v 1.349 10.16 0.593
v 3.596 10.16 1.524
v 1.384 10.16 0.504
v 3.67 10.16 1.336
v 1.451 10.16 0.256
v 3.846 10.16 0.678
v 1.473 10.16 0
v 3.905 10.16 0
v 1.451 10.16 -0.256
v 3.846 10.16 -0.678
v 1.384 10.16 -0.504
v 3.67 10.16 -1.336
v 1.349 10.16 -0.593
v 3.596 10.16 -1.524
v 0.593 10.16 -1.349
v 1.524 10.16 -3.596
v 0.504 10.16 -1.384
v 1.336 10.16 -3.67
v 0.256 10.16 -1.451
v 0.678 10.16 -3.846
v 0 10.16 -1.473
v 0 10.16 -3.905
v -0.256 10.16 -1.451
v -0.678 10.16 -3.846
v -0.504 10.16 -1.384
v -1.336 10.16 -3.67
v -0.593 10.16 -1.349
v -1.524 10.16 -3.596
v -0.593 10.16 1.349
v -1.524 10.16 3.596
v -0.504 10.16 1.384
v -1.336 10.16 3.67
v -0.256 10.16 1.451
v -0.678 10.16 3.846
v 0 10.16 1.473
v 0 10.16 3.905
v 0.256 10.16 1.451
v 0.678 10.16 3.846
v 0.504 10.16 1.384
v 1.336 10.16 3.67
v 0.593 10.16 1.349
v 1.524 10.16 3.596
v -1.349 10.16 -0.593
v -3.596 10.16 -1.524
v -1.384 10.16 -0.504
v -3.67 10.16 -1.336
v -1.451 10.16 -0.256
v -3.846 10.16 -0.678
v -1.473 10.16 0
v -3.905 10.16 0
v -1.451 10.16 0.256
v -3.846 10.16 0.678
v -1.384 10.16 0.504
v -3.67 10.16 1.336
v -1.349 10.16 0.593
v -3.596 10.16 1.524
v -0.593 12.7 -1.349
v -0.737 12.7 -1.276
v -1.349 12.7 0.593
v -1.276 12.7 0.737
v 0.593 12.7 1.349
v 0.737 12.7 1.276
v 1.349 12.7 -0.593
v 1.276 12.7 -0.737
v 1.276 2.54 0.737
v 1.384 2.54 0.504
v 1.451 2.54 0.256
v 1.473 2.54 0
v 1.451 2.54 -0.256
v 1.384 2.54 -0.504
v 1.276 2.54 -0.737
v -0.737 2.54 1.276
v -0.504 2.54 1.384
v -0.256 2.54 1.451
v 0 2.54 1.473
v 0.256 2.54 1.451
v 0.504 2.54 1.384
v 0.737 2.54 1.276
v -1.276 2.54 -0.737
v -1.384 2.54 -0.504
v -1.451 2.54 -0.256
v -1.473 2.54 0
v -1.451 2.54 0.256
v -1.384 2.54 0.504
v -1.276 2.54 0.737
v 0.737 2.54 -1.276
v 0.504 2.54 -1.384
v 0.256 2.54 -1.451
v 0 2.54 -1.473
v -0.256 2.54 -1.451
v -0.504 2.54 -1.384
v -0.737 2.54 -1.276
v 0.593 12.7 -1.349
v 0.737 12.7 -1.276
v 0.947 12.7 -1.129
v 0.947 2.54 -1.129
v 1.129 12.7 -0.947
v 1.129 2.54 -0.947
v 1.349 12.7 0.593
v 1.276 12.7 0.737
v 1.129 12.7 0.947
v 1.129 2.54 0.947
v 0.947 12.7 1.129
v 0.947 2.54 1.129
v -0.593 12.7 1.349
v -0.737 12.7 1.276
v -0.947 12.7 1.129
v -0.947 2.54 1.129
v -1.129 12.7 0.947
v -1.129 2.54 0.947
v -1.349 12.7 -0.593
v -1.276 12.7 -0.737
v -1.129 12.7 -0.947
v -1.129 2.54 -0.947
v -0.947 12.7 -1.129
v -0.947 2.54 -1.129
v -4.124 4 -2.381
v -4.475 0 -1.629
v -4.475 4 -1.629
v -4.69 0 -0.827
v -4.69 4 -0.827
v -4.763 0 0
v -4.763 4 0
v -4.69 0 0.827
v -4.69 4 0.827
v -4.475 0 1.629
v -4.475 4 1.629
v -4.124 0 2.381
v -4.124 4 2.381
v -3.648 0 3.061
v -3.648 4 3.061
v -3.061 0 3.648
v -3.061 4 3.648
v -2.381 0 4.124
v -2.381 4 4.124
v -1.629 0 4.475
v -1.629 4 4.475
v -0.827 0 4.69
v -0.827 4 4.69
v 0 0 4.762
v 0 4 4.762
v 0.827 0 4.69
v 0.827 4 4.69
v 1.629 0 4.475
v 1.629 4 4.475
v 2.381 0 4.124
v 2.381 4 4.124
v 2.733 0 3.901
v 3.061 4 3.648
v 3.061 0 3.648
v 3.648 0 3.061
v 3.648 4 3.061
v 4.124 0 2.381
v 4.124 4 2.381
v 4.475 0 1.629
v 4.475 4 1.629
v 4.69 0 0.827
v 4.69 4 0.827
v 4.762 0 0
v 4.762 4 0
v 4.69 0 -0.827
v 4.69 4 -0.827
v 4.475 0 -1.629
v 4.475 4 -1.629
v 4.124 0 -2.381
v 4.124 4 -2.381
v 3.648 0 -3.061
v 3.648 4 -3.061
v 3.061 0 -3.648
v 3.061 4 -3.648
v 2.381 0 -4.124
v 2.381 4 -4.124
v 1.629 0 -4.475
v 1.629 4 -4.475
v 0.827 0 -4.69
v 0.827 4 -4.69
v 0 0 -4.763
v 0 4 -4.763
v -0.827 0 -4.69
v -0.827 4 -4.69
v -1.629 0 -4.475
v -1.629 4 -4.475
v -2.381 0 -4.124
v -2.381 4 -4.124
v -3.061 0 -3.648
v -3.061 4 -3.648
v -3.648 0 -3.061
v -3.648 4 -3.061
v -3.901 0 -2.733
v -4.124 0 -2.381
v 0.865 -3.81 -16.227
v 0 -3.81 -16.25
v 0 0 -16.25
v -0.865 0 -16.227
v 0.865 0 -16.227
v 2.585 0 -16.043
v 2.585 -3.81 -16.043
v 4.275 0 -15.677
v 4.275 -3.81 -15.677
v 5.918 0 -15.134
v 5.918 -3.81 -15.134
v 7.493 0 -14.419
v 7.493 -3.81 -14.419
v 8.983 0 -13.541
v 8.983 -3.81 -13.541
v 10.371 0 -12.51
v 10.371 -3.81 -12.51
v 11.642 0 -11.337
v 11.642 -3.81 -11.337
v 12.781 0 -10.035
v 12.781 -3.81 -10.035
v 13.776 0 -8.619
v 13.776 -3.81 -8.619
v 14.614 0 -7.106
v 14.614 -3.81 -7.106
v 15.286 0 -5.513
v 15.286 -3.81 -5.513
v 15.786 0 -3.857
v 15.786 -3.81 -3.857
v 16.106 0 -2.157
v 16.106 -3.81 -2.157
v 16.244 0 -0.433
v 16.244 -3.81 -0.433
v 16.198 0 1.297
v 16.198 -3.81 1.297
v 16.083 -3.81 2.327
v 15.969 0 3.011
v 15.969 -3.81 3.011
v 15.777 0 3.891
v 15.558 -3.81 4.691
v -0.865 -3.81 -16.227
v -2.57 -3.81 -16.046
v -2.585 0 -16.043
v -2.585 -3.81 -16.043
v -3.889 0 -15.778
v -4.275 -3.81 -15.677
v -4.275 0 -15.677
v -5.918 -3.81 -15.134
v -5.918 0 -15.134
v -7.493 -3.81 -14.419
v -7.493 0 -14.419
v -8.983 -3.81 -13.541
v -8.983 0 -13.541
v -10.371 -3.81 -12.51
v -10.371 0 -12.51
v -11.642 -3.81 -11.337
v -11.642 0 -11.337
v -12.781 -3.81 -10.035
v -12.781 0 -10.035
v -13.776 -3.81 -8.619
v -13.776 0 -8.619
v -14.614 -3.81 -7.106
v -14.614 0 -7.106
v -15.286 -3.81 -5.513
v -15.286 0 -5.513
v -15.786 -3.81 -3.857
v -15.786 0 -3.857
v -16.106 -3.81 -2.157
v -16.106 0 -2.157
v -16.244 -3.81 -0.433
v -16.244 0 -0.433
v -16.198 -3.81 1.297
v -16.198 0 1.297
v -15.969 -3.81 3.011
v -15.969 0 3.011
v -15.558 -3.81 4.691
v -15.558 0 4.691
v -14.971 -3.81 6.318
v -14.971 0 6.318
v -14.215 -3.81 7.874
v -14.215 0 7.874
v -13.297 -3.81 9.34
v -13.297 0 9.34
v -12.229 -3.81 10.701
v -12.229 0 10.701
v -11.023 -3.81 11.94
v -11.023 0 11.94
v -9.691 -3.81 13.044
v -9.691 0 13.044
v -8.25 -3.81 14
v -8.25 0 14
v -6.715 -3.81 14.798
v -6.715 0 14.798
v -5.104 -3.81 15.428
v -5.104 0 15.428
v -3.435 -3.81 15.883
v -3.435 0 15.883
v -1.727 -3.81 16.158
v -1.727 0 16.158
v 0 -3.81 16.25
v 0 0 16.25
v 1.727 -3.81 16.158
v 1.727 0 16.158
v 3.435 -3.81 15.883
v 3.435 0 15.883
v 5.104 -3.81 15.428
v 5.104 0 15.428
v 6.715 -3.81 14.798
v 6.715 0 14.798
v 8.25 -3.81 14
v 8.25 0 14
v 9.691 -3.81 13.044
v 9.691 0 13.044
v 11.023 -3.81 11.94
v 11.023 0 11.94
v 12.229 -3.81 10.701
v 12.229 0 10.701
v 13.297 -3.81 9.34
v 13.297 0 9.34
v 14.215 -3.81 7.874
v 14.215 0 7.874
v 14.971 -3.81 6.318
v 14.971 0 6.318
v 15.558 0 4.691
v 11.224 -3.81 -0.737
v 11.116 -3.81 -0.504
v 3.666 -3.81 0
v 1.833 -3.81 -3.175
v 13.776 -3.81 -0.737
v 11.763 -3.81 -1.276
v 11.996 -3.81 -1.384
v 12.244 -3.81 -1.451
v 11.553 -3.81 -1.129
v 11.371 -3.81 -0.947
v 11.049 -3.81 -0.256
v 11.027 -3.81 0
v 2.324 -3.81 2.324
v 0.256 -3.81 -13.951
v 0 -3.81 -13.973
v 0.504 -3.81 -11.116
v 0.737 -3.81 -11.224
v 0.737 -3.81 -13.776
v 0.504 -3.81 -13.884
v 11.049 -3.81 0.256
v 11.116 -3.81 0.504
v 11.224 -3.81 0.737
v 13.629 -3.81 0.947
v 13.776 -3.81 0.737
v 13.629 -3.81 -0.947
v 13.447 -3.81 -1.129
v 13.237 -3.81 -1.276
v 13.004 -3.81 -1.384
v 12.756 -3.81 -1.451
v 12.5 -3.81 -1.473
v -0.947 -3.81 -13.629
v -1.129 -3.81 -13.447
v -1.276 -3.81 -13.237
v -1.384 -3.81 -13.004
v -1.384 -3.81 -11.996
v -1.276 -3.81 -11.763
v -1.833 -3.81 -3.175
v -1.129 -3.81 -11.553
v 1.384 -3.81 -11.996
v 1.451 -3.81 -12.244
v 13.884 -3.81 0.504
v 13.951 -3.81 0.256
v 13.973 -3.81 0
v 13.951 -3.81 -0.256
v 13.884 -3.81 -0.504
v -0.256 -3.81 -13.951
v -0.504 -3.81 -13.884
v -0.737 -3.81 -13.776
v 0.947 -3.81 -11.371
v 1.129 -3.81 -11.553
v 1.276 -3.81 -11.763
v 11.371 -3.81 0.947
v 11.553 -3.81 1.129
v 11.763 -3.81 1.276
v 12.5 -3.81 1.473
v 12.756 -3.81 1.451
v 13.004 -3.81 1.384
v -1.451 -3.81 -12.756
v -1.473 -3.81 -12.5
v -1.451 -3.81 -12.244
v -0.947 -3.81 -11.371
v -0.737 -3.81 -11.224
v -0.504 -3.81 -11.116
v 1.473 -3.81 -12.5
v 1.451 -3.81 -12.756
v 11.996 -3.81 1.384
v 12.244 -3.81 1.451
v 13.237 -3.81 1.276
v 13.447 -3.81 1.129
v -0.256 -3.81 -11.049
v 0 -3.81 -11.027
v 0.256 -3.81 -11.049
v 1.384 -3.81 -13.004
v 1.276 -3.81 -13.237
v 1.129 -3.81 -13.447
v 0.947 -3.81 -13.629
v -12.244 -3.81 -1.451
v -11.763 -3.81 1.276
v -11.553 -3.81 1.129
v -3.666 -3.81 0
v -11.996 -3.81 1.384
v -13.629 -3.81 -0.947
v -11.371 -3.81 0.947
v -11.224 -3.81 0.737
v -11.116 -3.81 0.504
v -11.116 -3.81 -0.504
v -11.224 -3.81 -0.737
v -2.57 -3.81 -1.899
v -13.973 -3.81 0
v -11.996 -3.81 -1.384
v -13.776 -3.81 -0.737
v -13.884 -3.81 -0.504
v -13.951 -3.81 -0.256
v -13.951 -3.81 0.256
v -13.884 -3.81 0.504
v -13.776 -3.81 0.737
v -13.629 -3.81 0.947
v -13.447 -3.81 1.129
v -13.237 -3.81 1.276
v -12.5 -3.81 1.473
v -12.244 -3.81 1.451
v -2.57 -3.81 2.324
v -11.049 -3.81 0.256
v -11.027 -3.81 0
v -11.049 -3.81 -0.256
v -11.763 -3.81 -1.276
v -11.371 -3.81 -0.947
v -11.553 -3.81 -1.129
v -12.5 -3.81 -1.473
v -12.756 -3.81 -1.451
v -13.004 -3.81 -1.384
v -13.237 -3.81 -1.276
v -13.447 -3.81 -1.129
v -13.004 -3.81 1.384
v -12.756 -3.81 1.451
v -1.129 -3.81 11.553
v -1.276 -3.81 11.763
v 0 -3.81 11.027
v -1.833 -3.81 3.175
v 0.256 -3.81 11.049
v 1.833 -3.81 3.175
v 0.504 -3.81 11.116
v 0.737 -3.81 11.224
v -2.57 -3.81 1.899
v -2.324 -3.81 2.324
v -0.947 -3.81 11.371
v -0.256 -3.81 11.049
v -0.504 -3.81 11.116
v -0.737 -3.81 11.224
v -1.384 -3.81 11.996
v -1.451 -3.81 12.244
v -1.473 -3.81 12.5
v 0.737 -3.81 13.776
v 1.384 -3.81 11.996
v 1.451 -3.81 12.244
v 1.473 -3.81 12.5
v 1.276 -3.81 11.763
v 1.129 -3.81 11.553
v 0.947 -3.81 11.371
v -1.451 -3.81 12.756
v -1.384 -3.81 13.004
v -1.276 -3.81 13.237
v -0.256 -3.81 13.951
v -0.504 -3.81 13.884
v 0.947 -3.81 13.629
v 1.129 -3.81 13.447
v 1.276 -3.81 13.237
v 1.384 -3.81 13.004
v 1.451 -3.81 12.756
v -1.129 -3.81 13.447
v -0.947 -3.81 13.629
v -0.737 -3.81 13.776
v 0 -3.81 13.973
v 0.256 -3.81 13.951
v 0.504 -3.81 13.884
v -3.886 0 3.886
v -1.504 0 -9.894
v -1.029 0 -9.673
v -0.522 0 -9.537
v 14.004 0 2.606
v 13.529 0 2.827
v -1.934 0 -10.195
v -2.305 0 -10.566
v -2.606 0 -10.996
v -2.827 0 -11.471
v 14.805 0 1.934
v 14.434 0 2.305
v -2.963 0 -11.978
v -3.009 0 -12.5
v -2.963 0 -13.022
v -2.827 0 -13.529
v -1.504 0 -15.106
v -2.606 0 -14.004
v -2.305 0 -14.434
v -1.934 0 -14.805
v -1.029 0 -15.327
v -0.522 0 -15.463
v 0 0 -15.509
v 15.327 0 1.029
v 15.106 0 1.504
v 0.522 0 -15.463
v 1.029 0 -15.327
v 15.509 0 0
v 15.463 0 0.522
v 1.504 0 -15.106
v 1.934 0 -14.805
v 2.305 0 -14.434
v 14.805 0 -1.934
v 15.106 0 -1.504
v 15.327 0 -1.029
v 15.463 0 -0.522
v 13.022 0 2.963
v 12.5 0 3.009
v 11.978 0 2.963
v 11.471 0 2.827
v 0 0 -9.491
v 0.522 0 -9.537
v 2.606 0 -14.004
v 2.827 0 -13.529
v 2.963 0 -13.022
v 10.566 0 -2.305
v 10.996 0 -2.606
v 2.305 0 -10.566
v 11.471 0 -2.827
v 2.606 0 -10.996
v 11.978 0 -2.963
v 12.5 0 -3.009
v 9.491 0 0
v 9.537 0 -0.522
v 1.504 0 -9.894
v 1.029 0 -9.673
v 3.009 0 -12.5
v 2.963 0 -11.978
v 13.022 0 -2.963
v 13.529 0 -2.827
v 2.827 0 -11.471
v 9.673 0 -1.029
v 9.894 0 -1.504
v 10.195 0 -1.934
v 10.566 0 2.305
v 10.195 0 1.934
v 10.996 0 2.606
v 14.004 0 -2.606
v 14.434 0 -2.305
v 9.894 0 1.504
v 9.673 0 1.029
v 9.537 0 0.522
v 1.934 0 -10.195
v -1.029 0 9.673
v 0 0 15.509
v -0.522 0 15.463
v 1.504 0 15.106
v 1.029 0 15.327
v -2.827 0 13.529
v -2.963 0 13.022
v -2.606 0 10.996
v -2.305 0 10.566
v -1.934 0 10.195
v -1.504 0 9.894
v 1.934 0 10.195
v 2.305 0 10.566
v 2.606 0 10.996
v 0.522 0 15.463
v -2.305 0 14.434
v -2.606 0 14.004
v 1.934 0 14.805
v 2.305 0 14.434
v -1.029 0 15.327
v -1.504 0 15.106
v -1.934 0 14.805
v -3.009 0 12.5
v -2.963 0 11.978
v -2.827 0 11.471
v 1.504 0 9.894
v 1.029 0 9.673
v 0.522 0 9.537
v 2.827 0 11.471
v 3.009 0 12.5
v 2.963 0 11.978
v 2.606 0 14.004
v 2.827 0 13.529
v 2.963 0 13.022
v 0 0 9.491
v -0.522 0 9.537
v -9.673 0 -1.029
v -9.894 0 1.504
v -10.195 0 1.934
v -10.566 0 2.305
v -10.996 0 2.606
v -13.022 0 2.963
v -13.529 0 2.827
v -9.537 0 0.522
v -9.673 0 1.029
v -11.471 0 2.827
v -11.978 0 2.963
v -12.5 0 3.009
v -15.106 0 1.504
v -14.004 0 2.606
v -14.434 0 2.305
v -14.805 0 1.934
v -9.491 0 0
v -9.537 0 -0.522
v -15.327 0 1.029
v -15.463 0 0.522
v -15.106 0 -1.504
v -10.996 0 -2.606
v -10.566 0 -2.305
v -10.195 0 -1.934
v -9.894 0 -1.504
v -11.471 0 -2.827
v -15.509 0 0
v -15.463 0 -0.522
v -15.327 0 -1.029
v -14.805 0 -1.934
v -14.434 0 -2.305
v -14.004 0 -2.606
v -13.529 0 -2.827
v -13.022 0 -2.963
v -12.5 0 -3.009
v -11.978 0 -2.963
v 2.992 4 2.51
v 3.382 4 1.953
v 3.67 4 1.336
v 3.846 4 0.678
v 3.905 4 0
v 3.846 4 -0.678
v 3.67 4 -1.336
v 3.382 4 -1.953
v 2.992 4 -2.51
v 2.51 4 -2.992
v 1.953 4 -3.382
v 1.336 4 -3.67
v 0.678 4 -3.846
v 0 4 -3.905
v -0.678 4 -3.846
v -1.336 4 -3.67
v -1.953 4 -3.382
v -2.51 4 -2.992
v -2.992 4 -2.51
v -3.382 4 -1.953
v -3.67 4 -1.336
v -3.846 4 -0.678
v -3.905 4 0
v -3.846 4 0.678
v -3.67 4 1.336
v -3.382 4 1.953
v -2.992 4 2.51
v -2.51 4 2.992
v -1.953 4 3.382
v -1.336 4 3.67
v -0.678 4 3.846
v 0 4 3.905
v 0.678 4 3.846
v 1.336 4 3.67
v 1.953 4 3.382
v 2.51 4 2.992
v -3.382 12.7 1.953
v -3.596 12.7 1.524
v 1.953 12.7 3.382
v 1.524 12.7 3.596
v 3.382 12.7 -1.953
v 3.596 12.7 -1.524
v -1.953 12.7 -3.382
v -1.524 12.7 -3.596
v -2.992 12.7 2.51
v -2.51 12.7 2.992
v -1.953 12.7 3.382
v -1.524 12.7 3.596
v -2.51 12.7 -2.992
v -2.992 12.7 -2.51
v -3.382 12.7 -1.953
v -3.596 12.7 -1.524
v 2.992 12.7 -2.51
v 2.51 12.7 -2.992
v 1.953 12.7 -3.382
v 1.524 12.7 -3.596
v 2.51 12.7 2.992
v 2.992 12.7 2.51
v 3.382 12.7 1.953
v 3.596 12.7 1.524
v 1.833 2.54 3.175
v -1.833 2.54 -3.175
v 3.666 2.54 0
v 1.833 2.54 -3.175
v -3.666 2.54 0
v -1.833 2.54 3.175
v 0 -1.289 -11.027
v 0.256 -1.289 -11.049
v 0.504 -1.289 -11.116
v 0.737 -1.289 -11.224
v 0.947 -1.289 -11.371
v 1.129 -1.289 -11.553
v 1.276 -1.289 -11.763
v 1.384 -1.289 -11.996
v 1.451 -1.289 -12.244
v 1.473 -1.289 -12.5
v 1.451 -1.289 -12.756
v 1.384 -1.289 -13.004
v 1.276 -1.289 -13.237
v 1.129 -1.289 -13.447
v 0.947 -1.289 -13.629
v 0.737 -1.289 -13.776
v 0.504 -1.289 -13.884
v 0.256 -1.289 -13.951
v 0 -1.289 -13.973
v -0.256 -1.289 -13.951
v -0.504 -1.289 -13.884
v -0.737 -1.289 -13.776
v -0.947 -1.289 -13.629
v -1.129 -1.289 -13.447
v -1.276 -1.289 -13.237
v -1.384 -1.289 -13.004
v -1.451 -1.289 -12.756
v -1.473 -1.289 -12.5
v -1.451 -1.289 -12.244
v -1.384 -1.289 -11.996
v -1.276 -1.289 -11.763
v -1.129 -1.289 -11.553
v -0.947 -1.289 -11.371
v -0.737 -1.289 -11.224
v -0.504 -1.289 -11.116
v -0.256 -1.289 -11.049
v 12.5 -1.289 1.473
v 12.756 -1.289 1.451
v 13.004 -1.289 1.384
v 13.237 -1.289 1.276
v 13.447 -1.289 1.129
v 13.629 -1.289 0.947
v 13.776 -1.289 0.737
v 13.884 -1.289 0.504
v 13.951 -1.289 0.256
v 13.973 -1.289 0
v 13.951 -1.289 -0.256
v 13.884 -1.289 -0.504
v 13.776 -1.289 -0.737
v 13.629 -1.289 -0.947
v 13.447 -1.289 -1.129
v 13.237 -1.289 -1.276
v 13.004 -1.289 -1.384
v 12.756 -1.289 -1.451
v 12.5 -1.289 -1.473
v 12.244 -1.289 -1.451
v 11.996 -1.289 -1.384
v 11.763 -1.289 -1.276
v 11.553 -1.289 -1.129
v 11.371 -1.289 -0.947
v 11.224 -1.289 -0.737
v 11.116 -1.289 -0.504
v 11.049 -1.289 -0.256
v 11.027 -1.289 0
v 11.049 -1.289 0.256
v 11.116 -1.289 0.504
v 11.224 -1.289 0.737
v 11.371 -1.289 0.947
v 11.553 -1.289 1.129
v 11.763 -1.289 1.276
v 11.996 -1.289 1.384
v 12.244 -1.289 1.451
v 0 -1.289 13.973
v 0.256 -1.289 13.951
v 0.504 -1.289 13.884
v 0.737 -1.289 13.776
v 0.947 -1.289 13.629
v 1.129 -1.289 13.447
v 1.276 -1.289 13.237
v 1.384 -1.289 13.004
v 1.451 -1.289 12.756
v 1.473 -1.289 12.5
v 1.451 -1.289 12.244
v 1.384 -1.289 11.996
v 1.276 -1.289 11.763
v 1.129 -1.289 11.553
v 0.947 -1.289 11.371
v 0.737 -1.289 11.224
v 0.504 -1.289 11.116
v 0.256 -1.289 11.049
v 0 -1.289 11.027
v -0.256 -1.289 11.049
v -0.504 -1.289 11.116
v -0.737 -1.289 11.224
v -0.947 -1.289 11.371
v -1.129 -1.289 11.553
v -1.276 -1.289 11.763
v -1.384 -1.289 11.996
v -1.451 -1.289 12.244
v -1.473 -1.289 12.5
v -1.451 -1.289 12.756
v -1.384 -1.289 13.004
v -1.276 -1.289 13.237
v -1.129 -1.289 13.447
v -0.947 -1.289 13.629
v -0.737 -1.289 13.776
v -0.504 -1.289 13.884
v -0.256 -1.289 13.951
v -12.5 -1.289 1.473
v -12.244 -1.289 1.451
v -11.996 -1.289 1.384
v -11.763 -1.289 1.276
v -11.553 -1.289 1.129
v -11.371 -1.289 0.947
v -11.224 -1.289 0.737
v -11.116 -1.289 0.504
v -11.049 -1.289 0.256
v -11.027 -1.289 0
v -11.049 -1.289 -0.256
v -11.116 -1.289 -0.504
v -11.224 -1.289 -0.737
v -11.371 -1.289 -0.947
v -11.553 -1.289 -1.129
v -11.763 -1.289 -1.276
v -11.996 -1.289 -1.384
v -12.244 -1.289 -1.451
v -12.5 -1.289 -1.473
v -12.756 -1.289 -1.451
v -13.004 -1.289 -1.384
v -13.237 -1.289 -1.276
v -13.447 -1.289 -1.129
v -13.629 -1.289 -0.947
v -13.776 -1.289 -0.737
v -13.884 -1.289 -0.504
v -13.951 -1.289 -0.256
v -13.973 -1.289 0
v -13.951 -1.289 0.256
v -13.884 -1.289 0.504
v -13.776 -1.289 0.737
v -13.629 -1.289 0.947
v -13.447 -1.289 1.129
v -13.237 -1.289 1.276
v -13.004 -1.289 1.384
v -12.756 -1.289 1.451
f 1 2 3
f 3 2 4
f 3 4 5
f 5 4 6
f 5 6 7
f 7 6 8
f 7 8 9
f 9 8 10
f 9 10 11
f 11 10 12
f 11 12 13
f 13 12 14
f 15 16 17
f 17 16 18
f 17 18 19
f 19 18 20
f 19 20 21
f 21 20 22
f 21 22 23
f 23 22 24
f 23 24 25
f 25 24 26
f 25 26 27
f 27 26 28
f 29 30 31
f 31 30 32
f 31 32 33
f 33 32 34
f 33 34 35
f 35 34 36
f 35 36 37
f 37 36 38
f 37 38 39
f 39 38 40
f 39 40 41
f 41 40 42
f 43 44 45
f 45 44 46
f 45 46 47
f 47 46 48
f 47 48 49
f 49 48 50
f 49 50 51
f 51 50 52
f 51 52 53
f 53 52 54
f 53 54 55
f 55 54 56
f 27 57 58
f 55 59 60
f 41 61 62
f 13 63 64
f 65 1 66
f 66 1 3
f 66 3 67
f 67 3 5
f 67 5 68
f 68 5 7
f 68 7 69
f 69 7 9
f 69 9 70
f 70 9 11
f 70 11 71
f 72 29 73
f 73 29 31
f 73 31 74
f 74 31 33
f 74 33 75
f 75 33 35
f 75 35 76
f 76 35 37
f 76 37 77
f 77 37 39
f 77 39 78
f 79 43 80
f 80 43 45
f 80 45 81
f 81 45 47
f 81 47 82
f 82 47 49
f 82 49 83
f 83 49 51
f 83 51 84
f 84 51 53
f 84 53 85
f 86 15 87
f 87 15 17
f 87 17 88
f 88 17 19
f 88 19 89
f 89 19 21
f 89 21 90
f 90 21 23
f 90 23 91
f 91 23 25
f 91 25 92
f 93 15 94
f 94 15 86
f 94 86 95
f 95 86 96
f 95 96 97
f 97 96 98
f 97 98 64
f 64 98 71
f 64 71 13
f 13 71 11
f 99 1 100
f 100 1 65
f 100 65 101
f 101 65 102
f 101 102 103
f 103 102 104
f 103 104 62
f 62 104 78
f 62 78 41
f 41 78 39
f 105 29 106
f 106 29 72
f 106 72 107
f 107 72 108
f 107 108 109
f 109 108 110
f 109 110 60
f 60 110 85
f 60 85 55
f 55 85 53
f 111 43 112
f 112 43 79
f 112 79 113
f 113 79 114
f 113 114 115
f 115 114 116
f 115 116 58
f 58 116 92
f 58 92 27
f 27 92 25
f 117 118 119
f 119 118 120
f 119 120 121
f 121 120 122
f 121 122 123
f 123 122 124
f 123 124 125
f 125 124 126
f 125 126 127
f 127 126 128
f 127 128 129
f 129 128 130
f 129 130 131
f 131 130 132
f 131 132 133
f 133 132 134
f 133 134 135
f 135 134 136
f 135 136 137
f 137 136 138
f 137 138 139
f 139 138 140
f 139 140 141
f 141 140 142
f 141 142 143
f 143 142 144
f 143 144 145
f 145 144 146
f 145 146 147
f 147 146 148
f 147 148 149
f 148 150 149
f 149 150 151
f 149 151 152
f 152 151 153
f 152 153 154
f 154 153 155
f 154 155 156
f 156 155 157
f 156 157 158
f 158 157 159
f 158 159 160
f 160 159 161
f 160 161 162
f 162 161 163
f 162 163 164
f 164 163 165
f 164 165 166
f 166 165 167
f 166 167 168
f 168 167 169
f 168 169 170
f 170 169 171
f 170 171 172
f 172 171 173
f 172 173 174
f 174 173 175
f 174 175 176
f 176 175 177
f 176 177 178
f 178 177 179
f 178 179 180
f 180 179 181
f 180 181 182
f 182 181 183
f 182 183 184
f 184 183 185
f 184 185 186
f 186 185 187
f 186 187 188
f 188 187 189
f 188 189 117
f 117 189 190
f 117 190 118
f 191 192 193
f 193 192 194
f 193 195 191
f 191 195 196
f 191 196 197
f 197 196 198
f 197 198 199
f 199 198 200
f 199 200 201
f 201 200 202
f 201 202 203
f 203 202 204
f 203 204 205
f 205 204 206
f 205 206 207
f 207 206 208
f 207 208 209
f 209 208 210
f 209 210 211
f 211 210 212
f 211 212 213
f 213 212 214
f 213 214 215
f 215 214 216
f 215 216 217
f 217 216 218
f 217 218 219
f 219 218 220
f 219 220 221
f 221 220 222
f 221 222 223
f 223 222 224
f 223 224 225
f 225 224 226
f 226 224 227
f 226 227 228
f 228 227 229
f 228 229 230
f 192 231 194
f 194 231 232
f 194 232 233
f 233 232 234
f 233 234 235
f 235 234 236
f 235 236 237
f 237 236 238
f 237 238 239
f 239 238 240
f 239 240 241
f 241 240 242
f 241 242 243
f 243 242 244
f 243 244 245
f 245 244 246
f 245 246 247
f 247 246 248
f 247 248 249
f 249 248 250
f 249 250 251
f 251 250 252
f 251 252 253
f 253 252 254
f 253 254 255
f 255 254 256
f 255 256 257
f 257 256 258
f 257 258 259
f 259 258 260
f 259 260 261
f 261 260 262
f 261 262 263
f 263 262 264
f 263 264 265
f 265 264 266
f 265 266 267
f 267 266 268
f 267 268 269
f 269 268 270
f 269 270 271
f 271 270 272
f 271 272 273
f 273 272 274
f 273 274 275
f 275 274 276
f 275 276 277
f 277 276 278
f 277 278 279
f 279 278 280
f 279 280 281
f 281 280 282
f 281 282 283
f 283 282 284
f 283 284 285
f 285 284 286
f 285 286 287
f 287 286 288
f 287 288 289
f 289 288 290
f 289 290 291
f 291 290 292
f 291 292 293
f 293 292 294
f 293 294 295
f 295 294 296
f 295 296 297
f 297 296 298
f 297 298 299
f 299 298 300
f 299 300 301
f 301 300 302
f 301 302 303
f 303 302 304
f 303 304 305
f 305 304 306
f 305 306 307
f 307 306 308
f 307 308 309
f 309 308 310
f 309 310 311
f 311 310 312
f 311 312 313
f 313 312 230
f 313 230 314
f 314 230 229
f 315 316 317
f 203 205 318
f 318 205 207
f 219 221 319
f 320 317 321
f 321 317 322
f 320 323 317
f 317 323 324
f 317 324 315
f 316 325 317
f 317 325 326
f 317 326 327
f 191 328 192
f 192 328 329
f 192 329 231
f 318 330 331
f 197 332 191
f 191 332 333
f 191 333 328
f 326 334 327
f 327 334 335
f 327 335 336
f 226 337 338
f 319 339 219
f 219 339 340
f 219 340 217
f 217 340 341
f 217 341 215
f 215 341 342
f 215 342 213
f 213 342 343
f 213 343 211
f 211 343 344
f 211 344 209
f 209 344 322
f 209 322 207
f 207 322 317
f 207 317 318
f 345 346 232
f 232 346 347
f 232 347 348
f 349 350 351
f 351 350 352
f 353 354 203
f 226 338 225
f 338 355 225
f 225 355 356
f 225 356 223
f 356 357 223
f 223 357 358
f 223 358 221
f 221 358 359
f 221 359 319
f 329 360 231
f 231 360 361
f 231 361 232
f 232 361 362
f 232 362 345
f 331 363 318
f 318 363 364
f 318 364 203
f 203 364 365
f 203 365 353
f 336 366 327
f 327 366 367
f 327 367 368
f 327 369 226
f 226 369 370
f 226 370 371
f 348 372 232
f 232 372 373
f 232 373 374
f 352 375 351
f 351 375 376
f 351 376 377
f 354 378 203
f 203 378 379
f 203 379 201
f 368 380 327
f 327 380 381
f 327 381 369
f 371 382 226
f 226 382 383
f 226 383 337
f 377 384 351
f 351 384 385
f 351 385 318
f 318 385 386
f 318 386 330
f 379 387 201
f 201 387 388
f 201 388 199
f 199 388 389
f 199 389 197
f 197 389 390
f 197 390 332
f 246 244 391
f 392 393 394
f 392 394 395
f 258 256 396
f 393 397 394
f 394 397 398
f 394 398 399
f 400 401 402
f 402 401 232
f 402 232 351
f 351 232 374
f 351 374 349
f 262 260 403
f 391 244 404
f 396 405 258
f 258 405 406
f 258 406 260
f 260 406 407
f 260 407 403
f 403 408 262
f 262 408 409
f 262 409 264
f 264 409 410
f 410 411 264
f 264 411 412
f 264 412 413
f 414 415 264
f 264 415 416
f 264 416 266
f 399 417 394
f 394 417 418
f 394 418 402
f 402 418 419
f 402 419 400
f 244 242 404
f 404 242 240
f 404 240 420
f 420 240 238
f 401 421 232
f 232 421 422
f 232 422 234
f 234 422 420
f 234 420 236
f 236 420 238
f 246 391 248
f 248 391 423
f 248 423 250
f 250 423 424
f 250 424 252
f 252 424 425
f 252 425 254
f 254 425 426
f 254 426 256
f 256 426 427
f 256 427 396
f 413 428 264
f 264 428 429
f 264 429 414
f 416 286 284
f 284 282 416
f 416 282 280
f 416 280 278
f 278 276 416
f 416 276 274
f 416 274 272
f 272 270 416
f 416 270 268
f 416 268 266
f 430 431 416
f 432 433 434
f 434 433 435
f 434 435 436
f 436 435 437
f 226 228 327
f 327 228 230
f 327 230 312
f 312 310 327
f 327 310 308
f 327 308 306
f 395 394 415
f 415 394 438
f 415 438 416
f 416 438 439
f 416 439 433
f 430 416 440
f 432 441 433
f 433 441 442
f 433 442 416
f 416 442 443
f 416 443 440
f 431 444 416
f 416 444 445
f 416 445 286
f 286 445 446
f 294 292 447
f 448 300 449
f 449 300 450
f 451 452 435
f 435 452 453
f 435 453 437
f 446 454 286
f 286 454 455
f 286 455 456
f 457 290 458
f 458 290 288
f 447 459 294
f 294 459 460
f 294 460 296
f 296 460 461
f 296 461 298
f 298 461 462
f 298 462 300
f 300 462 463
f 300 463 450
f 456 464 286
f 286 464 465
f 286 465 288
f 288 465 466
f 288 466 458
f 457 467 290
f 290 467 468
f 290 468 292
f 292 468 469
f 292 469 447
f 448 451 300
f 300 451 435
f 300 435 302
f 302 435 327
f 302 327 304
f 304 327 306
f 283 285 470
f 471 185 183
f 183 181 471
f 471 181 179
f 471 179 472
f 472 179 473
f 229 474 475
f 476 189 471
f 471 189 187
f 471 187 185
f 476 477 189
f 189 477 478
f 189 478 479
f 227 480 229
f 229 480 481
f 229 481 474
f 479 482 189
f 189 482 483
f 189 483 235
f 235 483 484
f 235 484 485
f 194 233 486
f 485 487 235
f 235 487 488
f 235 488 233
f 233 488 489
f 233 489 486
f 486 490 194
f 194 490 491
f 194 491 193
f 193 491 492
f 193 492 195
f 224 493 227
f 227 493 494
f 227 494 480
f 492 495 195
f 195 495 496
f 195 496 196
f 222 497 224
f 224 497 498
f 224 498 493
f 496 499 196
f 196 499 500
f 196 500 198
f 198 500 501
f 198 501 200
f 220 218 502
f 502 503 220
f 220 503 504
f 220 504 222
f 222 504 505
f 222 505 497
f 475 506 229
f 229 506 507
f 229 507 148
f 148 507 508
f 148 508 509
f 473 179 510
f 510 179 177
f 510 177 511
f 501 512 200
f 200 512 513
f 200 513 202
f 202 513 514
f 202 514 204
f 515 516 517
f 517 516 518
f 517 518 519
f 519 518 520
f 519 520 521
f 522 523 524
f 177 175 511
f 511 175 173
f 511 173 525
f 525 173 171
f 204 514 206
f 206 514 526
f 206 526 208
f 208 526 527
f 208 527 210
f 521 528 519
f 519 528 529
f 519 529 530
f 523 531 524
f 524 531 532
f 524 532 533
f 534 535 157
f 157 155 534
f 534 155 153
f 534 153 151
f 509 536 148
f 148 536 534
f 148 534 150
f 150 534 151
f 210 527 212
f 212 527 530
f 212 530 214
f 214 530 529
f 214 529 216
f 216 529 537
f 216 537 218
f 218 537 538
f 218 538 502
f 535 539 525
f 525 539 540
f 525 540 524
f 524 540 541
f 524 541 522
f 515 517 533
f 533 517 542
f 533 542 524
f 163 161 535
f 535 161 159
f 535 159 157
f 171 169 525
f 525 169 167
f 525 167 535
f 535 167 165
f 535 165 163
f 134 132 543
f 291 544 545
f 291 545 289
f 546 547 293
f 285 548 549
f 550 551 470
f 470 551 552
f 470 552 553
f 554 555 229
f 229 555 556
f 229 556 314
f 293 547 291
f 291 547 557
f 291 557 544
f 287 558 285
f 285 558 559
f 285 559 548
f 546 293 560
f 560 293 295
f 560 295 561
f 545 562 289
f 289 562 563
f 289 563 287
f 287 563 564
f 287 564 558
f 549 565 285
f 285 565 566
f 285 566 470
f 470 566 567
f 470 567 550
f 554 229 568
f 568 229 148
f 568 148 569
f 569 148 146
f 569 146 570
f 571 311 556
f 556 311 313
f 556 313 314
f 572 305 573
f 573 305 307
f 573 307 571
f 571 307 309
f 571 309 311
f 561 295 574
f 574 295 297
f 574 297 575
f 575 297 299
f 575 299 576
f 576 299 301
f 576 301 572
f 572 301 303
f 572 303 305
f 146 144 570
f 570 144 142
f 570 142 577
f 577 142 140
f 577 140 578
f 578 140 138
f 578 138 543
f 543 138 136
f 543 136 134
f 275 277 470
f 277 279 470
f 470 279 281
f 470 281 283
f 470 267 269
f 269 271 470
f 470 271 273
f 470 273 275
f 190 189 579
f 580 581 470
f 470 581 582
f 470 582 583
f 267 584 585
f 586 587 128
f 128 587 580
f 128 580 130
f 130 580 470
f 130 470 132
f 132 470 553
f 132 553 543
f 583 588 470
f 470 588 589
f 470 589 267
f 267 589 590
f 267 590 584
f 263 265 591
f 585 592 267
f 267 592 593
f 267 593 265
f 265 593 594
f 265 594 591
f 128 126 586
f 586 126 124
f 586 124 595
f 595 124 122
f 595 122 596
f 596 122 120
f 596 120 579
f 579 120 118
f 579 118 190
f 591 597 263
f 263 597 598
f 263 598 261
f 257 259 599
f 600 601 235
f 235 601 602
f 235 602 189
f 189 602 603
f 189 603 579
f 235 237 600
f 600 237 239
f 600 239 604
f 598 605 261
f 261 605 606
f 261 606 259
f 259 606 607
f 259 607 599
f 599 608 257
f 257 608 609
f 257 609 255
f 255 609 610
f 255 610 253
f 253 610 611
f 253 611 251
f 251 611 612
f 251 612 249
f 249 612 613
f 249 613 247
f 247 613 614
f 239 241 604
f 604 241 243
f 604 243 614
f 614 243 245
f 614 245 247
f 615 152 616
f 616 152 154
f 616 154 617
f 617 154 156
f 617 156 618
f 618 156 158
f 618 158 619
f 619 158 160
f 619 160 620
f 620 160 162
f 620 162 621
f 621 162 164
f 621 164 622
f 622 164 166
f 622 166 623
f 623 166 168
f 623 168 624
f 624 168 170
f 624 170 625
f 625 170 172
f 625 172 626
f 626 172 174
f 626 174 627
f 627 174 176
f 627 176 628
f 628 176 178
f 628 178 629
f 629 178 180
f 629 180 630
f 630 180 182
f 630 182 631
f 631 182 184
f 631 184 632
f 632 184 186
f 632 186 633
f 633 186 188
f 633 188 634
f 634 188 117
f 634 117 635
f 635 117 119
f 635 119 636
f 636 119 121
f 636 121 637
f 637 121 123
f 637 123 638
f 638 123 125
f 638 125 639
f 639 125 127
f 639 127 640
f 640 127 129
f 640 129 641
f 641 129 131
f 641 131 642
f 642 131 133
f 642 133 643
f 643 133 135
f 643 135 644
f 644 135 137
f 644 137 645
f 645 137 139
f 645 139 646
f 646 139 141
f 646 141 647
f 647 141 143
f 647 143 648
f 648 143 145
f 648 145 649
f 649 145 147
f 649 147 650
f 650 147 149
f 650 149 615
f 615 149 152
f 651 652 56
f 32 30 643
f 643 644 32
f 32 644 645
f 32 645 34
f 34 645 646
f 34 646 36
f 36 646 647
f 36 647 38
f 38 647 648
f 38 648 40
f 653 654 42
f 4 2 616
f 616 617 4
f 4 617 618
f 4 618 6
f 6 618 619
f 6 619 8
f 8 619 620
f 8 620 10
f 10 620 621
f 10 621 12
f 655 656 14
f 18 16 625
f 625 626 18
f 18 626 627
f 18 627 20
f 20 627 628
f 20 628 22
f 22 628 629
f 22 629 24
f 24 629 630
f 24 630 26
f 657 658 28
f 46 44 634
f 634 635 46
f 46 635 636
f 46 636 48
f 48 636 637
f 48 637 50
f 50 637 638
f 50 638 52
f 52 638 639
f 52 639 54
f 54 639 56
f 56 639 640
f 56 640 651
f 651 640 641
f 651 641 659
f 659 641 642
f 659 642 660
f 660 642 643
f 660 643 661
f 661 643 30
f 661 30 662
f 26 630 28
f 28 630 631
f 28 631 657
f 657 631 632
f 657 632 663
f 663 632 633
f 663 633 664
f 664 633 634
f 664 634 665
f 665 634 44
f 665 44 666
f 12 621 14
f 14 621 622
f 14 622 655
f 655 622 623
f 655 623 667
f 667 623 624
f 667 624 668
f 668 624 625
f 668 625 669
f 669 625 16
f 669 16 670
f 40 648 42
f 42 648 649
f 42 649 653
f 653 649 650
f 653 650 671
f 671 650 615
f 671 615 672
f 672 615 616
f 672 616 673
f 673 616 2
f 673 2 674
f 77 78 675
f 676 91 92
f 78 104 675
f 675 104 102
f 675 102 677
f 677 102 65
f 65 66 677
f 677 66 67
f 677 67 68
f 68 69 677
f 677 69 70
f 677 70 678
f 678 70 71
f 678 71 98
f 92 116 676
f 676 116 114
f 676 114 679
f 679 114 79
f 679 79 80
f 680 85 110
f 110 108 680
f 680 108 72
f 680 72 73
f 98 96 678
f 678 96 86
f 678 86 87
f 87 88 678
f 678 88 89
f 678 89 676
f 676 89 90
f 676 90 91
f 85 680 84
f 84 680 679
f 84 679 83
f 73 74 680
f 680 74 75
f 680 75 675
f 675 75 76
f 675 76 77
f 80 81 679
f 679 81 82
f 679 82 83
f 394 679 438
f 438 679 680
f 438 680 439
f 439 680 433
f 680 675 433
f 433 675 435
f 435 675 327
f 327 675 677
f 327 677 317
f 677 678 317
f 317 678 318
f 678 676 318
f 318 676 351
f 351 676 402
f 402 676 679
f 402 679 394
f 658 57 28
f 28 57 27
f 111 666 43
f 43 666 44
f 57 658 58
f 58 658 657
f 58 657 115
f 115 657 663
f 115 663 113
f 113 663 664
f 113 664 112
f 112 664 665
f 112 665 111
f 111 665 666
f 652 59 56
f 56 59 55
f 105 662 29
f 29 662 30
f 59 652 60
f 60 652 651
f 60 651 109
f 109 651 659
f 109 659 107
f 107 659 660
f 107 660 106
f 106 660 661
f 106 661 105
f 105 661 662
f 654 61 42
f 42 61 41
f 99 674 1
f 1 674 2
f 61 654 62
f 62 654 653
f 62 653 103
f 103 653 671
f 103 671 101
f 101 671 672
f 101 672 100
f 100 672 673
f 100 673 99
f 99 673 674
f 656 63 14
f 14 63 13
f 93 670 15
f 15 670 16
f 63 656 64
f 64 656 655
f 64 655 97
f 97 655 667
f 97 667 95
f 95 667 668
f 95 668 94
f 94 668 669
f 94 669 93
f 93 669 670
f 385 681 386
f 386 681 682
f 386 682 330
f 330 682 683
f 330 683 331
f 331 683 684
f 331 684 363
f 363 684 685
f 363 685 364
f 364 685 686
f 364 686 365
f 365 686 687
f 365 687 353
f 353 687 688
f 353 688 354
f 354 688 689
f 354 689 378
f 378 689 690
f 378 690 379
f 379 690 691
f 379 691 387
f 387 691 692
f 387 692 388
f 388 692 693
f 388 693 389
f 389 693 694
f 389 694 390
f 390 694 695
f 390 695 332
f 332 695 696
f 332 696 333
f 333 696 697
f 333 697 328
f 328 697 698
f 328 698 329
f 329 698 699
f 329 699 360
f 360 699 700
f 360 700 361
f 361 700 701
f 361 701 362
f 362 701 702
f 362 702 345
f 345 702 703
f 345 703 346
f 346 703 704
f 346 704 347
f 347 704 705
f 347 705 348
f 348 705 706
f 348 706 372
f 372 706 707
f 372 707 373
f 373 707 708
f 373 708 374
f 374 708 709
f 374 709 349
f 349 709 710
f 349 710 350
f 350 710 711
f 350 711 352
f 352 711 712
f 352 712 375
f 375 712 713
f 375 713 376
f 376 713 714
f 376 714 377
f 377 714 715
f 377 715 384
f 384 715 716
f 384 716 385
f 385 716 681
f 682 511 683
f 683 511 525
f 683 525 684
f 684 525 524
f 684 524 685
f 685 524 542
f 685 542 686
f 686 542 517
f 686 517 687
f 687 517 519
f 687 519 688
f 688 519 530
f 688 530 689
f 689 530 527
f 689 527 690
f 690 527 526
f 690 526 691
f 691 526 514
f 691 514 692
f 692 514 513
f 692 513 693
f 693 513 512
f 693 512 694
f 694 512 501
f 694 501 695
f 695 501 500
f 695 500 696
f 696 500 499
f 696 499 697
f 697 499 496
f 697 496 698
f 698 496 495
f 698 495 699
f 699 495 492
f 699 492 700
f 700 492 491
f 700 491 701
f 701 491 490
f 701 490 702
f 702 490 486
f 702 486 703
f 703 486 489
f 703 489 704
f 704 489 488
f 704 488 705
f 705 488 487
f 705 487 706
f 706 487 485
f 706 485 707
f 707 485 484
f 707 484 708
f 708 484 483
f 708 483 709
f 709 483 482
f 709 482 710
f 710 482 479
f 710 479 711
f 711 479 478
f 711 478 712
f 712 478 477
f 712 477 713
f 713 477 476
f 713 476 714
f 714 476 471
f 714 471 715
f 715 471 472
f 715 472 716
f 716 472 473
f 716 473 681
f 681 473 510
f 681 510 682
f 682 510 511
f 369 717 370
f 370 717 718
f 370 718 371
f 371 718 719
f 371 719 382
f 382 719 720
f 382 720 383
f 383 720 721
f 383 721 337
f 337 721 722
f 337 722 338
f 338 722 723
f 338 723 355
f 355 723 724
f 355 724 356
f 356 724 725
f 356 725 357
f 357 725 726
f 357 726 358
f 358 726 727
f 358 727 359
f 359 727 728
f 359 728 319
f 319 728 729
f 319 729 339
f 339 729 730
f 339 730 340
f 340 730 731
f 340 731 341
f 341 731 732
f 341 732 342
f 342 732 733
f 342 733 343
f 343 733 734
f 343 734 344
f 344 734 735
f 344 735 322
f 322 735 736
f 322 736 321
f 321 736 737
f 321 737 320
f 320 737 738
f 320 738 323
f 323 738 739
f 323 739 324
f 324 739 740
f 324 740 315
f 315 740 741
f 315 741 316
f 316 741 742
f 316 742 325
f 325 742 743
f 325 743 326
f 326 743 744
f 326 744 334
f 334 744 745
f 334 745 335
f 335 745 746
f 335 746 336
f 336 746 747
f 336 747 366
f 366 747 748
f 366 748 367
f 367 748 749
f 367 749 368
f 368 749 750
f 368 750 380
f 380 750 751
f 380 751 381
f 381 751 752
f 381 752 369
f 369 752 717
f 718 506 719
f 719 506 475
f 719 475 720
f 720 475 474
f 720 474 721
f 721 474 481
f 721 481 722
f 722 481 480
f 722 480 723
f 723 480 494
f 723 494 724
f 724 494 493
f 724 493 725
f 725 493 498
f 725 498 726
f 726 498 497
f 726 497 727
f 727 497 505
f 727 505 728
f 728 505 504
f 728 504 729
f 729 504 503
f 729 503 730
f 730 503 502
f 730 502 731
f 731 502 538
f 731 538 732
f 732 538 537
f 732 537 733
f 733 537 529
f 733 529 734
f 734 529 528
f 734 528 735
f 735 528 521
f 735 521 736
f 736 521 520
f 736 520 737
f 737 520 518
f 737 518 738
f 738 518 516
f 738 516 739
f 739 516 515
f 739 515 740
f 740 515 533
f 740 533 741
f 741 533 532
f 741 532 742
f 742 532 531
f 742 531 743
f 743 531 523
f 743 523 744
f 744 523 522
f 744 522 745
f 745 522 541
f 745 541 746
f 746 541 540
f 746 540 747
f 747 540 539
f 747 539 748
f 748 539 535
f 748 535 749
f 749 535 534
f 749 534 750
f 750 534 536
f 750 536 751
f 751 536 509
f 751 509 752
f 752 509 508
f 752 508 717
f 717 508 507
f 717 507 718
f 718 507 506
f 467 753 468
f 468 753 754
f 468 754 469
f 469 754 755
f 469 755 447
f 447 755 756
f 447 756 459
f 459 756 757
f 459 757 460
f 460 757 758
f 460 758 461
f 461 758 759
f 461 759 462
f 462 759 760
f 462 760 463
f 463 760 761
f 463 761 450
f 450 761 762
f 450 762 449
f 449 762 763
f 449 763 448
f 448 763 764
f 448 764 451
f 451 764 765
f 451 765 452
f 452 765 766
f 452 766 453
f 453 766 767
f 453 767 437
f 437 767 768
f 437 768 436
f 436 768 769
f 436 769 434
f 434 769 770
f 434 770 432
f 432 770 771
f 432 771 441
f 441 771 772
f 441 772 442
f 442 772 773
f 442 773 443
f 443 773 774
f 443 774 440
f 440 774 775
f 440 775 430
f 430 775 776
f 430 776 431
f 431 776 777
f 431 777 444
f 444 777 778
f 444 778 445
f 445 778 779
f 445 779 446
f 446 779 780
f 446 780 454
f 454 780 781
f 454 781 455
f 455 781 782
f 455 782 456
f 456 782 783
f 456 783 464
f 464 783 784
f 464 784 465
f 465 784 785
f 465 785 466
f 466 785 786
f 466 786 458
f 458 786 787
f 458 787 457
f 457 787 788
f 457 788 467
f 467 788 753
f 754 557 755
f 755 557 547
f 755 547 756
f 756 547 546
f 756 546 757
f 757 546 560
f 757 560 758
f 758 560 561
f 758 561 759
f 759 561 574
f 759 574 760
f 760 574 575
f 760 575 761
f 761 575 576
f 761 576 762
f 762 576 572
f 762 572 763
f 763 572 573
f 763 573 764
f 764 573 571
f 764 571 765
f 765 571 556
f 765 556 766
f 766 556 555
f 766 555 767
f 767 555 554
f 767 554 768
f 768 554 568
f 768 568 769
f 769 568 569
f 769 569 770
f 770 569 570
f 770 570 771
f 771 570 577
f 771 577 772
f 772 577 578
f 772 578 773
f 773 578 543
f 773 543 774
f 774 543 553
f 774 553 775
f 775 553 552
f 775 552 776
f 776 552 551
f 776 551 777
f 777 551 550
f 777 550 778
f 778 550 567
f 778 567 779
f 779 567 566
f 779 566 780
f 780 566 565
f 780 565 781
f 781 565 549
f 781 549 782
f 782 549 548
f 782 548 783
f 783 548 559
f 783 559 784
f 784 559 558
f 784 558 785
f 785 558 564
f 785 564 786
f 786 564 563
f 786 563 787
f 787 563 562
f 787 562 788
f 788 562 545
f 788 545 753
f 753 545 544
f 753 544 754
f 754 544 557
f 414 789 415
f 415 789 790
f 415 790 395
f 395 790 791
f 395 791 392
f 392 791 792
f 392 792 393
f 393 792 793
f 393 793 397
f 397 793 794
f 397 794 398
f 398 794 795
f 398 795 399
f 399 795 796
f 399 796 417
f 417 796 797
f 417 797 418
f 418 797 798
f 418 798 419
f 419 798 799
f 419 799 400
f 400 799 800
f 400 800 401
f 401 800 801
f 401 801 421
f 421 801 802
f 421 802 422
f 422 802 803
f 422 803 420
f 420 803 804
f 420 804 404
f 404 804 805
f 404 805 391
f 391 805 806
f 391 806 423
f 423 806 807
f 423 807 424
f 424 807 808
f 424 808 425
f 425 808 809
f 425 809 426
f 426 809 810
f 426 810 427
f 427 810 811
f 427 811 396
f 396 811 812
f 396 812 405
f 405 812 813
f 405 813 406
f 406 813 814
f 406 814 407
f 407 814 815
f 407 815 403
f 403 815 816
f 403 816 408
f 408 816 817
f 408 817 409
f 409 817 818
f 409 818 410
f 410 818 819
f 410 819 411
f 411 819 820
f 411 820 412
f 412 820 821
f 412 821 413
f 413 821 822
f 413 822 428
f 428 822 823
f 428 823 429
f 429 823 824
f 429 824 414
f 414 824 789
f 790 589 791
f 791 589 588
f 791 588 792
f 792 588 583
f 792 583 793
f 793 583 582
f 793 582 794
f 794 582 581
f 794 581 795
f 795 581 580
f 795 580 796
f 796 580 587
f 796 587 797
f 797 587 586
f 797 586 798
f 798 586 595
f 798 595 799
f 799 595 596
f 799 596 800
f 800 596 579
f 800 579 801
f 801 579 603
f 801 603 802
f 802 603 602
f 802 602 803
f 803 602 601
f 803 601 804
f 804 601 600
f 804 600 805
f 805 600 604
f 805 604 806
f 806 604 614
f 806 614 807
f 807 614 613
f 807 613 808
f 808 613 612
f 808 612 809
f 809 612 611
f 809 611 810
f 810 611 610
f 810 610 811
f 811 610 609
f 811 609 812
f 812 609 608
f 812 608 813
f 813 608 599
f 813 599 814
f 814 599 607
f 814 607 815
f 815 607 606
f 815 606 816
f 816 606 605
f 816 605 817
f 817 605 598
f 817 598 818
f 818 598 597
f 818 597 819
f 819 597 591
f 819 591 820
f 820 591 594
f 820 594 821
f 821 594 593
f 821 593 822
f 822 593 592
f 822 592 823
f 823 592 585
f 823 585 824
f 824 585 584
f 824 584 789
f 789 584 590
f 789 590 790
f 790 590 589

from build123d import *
from build123d.topology import SkipClean

# Parameters (mm, degrees)
SKETCH1_R                                         = 4.7625
BOSS_EXTRUDE1_DEPTH                               = 10.16
SKETCH3_R                                         = 16.25
BOSS_EXTRUDE2_DEPTH                               = 3.81
F_4_CLEARANCE_HOLE1_D                             = 2.9464
CUT_EXTRUDE1_START                                = -6.1595
SKETCH6_R                                         = 4.7625
SKETCH6_R_2                                       = 3.90525
CUT_EXTRUDE1_DEPTH                                = 6.1595
CUT_EXTRUDE4_DEPTH                                = 6.35
BOSS_EXTRUDE3_DEPTH                               = 2.54
CIRPATTERN1_COUNT                                 = 4
CSK_FOR_4_FLAT_HEAD_MACHINE_SCREW_100_D           = 2.9464
CSK_FOR_4_FLAT_HEAD_MACHINE_SCREW_100_CSINK_D     = 6.0177172
CSK_FOR_4_FLAT_HEAD_MACHINE_SCREW_100_CSINK_ANGLE = 100
CIRPATTERN2_COUNT                                 = 4


with BuildPart() as part:
    # Sketch1 → Boss-Extrude1 (new body)
    with BuildSketch(Plane(origin=(0, 0, 0), x_dir=(1, 0, 0), z_dir=(0, 1, 0))):
        with Locations(Location((0, 0, 0), (0, 0, 270))):
            Circle(SKETCH1_R)
    extrude(amount=BOSS_EXTRUDE1_DEPTH)

    # Sketch3 → Boss-Extrude2 (add)
    with BuildSketch(Plane.XZ):
        with Locations(Location((0, 0, 0), (0, 0, 90))):
            Circle(SKETCH3_R)
    extrude(amount=BOSS_EXTRUDE2_DEPTH)

    # #4 Clearance Hole1 (through all)
    with Locations(Plane(origin=(0, -3.81, 0), x_dir=(-1, 0, 0), z_dir=(0, -1, 0))):
        with Locations((0, 0)):
            Hole(F_4_CLEARANCE_HOLE1_D / 2)

    # Sketch6 → Cut-Extrude1 (cut)
    with BuildSketch(Plane(origin=(0, 10.16, 0), x_dir=(1, 0, 0), z_dir=(0, 1, 0)).offset(CUT_EXTRUDE1_START)):
        with Locations(Location((0, 0, 0), (0, 0, 270))):
            Circle(SKETCH6_R)
        with Locations(Location((0, 0, 0), (0, 0, 270))):
            Circle(SKETCH6_R_2, mode=Mode.SUBTRACT)
    extrude(amount=CUT_EXTRUDE1_DEPTH, mode=Mode.SUBTRACT)

    # Sketch7 → Cut-Extrude4 (cut)
    with BuildSketch(Plane.XZ.offset(3.81)):
        Polygon((-3.666174209, 0), (-1.833087105, -3.175), (1.833087105, -3.175), (3.666174209, 0), (1.833087105, 3.175), (-1.833087105, 3.175), align=None)
    extrude(amount=-CUT_EXTRUDE4_DEPTH, mode=Mode.SUBTRACT)

    # Sketch8 → Boss-Extrude3 (add)
    with BuildSketch(Plane(origin=(0, 10.16, 0), x_dir=(1, 0, 0), z_dir=(0, 1, 0))):
        with BuildLine():
            Line((-0.592971464, 1.348593001), (-1.523758258, 3.595711103))
            ThreePointArc((-1.523758258, 3.595711103), (-2.761428757, 2.761428757), (-3.595711103, 1.523758258))
            Line((-3.595711103, 1.523758258), (-1.348593001, 0.592971464))
            ThreePointArc((-1.348593001, 0.592971464), (-1.04170971, 1.04170971), (-0.592971464, 1.348593001))
        make_face()
    boss_extrude3 = extrude(amount=BOSS_EXTRUDE3_DEPTH)

    # CirPattern1: Boss-Extrude3 ×4 about axis
    with SkipClean():  # the faces are left unmerged after this step: merging them gives an invalid solid
        cirpattern1_axis = Axis((0, 0, 0), (0, 1, 0))
        for i in range(1, CIRPATTERN1_COUNT):
            add(boss_extrude3.rotate(cirpattern1_axis, i * 360 / CIRPATTERN1_COUNT))

    # CSK for #4 Flat Head Machine Screw (100)1 (through all)
    with Locations(Plane(origin=(0, 0, 0), x_dir=(1, 0, 0), z_dir=(0, 1, 0))):
        with Locations((0, 12.5)):
            csk_for_4_flat_head_machine_screw_100 = CounterSinkHole(CSK_FOR_4_FLAT_HEAD_MACHINE_SCREW_100_D / 2, CSK_FOR_4_FLAT_HEAD_MACHINE_SCREW_100_CSINK_D / 2, counter_sink_angle=CSK_FOR_4_FLAT_HEAD_MACHINE_SCREW_100_CSINK_ANGLE)

    # CirPattern2: CSK for #4 Flat Head Machine Screw (100)1 ×4 about axis
    with SkipClean():  # the faces are left unmerged after this step: merging them gives an invalid solid
        cirpattern2_axis = Axis((0, 0, 0), (0, 1, 0))
        for i in range(1, CIRPATTERN2_COUNT):
            add(csk_for_4_flat_head_machine_screw_100.rotate(cirpattern2_axis, i * 360 / CIRPATTERN2_COUNT), mode=Mode.SUBTRACT)


solid = part.part
